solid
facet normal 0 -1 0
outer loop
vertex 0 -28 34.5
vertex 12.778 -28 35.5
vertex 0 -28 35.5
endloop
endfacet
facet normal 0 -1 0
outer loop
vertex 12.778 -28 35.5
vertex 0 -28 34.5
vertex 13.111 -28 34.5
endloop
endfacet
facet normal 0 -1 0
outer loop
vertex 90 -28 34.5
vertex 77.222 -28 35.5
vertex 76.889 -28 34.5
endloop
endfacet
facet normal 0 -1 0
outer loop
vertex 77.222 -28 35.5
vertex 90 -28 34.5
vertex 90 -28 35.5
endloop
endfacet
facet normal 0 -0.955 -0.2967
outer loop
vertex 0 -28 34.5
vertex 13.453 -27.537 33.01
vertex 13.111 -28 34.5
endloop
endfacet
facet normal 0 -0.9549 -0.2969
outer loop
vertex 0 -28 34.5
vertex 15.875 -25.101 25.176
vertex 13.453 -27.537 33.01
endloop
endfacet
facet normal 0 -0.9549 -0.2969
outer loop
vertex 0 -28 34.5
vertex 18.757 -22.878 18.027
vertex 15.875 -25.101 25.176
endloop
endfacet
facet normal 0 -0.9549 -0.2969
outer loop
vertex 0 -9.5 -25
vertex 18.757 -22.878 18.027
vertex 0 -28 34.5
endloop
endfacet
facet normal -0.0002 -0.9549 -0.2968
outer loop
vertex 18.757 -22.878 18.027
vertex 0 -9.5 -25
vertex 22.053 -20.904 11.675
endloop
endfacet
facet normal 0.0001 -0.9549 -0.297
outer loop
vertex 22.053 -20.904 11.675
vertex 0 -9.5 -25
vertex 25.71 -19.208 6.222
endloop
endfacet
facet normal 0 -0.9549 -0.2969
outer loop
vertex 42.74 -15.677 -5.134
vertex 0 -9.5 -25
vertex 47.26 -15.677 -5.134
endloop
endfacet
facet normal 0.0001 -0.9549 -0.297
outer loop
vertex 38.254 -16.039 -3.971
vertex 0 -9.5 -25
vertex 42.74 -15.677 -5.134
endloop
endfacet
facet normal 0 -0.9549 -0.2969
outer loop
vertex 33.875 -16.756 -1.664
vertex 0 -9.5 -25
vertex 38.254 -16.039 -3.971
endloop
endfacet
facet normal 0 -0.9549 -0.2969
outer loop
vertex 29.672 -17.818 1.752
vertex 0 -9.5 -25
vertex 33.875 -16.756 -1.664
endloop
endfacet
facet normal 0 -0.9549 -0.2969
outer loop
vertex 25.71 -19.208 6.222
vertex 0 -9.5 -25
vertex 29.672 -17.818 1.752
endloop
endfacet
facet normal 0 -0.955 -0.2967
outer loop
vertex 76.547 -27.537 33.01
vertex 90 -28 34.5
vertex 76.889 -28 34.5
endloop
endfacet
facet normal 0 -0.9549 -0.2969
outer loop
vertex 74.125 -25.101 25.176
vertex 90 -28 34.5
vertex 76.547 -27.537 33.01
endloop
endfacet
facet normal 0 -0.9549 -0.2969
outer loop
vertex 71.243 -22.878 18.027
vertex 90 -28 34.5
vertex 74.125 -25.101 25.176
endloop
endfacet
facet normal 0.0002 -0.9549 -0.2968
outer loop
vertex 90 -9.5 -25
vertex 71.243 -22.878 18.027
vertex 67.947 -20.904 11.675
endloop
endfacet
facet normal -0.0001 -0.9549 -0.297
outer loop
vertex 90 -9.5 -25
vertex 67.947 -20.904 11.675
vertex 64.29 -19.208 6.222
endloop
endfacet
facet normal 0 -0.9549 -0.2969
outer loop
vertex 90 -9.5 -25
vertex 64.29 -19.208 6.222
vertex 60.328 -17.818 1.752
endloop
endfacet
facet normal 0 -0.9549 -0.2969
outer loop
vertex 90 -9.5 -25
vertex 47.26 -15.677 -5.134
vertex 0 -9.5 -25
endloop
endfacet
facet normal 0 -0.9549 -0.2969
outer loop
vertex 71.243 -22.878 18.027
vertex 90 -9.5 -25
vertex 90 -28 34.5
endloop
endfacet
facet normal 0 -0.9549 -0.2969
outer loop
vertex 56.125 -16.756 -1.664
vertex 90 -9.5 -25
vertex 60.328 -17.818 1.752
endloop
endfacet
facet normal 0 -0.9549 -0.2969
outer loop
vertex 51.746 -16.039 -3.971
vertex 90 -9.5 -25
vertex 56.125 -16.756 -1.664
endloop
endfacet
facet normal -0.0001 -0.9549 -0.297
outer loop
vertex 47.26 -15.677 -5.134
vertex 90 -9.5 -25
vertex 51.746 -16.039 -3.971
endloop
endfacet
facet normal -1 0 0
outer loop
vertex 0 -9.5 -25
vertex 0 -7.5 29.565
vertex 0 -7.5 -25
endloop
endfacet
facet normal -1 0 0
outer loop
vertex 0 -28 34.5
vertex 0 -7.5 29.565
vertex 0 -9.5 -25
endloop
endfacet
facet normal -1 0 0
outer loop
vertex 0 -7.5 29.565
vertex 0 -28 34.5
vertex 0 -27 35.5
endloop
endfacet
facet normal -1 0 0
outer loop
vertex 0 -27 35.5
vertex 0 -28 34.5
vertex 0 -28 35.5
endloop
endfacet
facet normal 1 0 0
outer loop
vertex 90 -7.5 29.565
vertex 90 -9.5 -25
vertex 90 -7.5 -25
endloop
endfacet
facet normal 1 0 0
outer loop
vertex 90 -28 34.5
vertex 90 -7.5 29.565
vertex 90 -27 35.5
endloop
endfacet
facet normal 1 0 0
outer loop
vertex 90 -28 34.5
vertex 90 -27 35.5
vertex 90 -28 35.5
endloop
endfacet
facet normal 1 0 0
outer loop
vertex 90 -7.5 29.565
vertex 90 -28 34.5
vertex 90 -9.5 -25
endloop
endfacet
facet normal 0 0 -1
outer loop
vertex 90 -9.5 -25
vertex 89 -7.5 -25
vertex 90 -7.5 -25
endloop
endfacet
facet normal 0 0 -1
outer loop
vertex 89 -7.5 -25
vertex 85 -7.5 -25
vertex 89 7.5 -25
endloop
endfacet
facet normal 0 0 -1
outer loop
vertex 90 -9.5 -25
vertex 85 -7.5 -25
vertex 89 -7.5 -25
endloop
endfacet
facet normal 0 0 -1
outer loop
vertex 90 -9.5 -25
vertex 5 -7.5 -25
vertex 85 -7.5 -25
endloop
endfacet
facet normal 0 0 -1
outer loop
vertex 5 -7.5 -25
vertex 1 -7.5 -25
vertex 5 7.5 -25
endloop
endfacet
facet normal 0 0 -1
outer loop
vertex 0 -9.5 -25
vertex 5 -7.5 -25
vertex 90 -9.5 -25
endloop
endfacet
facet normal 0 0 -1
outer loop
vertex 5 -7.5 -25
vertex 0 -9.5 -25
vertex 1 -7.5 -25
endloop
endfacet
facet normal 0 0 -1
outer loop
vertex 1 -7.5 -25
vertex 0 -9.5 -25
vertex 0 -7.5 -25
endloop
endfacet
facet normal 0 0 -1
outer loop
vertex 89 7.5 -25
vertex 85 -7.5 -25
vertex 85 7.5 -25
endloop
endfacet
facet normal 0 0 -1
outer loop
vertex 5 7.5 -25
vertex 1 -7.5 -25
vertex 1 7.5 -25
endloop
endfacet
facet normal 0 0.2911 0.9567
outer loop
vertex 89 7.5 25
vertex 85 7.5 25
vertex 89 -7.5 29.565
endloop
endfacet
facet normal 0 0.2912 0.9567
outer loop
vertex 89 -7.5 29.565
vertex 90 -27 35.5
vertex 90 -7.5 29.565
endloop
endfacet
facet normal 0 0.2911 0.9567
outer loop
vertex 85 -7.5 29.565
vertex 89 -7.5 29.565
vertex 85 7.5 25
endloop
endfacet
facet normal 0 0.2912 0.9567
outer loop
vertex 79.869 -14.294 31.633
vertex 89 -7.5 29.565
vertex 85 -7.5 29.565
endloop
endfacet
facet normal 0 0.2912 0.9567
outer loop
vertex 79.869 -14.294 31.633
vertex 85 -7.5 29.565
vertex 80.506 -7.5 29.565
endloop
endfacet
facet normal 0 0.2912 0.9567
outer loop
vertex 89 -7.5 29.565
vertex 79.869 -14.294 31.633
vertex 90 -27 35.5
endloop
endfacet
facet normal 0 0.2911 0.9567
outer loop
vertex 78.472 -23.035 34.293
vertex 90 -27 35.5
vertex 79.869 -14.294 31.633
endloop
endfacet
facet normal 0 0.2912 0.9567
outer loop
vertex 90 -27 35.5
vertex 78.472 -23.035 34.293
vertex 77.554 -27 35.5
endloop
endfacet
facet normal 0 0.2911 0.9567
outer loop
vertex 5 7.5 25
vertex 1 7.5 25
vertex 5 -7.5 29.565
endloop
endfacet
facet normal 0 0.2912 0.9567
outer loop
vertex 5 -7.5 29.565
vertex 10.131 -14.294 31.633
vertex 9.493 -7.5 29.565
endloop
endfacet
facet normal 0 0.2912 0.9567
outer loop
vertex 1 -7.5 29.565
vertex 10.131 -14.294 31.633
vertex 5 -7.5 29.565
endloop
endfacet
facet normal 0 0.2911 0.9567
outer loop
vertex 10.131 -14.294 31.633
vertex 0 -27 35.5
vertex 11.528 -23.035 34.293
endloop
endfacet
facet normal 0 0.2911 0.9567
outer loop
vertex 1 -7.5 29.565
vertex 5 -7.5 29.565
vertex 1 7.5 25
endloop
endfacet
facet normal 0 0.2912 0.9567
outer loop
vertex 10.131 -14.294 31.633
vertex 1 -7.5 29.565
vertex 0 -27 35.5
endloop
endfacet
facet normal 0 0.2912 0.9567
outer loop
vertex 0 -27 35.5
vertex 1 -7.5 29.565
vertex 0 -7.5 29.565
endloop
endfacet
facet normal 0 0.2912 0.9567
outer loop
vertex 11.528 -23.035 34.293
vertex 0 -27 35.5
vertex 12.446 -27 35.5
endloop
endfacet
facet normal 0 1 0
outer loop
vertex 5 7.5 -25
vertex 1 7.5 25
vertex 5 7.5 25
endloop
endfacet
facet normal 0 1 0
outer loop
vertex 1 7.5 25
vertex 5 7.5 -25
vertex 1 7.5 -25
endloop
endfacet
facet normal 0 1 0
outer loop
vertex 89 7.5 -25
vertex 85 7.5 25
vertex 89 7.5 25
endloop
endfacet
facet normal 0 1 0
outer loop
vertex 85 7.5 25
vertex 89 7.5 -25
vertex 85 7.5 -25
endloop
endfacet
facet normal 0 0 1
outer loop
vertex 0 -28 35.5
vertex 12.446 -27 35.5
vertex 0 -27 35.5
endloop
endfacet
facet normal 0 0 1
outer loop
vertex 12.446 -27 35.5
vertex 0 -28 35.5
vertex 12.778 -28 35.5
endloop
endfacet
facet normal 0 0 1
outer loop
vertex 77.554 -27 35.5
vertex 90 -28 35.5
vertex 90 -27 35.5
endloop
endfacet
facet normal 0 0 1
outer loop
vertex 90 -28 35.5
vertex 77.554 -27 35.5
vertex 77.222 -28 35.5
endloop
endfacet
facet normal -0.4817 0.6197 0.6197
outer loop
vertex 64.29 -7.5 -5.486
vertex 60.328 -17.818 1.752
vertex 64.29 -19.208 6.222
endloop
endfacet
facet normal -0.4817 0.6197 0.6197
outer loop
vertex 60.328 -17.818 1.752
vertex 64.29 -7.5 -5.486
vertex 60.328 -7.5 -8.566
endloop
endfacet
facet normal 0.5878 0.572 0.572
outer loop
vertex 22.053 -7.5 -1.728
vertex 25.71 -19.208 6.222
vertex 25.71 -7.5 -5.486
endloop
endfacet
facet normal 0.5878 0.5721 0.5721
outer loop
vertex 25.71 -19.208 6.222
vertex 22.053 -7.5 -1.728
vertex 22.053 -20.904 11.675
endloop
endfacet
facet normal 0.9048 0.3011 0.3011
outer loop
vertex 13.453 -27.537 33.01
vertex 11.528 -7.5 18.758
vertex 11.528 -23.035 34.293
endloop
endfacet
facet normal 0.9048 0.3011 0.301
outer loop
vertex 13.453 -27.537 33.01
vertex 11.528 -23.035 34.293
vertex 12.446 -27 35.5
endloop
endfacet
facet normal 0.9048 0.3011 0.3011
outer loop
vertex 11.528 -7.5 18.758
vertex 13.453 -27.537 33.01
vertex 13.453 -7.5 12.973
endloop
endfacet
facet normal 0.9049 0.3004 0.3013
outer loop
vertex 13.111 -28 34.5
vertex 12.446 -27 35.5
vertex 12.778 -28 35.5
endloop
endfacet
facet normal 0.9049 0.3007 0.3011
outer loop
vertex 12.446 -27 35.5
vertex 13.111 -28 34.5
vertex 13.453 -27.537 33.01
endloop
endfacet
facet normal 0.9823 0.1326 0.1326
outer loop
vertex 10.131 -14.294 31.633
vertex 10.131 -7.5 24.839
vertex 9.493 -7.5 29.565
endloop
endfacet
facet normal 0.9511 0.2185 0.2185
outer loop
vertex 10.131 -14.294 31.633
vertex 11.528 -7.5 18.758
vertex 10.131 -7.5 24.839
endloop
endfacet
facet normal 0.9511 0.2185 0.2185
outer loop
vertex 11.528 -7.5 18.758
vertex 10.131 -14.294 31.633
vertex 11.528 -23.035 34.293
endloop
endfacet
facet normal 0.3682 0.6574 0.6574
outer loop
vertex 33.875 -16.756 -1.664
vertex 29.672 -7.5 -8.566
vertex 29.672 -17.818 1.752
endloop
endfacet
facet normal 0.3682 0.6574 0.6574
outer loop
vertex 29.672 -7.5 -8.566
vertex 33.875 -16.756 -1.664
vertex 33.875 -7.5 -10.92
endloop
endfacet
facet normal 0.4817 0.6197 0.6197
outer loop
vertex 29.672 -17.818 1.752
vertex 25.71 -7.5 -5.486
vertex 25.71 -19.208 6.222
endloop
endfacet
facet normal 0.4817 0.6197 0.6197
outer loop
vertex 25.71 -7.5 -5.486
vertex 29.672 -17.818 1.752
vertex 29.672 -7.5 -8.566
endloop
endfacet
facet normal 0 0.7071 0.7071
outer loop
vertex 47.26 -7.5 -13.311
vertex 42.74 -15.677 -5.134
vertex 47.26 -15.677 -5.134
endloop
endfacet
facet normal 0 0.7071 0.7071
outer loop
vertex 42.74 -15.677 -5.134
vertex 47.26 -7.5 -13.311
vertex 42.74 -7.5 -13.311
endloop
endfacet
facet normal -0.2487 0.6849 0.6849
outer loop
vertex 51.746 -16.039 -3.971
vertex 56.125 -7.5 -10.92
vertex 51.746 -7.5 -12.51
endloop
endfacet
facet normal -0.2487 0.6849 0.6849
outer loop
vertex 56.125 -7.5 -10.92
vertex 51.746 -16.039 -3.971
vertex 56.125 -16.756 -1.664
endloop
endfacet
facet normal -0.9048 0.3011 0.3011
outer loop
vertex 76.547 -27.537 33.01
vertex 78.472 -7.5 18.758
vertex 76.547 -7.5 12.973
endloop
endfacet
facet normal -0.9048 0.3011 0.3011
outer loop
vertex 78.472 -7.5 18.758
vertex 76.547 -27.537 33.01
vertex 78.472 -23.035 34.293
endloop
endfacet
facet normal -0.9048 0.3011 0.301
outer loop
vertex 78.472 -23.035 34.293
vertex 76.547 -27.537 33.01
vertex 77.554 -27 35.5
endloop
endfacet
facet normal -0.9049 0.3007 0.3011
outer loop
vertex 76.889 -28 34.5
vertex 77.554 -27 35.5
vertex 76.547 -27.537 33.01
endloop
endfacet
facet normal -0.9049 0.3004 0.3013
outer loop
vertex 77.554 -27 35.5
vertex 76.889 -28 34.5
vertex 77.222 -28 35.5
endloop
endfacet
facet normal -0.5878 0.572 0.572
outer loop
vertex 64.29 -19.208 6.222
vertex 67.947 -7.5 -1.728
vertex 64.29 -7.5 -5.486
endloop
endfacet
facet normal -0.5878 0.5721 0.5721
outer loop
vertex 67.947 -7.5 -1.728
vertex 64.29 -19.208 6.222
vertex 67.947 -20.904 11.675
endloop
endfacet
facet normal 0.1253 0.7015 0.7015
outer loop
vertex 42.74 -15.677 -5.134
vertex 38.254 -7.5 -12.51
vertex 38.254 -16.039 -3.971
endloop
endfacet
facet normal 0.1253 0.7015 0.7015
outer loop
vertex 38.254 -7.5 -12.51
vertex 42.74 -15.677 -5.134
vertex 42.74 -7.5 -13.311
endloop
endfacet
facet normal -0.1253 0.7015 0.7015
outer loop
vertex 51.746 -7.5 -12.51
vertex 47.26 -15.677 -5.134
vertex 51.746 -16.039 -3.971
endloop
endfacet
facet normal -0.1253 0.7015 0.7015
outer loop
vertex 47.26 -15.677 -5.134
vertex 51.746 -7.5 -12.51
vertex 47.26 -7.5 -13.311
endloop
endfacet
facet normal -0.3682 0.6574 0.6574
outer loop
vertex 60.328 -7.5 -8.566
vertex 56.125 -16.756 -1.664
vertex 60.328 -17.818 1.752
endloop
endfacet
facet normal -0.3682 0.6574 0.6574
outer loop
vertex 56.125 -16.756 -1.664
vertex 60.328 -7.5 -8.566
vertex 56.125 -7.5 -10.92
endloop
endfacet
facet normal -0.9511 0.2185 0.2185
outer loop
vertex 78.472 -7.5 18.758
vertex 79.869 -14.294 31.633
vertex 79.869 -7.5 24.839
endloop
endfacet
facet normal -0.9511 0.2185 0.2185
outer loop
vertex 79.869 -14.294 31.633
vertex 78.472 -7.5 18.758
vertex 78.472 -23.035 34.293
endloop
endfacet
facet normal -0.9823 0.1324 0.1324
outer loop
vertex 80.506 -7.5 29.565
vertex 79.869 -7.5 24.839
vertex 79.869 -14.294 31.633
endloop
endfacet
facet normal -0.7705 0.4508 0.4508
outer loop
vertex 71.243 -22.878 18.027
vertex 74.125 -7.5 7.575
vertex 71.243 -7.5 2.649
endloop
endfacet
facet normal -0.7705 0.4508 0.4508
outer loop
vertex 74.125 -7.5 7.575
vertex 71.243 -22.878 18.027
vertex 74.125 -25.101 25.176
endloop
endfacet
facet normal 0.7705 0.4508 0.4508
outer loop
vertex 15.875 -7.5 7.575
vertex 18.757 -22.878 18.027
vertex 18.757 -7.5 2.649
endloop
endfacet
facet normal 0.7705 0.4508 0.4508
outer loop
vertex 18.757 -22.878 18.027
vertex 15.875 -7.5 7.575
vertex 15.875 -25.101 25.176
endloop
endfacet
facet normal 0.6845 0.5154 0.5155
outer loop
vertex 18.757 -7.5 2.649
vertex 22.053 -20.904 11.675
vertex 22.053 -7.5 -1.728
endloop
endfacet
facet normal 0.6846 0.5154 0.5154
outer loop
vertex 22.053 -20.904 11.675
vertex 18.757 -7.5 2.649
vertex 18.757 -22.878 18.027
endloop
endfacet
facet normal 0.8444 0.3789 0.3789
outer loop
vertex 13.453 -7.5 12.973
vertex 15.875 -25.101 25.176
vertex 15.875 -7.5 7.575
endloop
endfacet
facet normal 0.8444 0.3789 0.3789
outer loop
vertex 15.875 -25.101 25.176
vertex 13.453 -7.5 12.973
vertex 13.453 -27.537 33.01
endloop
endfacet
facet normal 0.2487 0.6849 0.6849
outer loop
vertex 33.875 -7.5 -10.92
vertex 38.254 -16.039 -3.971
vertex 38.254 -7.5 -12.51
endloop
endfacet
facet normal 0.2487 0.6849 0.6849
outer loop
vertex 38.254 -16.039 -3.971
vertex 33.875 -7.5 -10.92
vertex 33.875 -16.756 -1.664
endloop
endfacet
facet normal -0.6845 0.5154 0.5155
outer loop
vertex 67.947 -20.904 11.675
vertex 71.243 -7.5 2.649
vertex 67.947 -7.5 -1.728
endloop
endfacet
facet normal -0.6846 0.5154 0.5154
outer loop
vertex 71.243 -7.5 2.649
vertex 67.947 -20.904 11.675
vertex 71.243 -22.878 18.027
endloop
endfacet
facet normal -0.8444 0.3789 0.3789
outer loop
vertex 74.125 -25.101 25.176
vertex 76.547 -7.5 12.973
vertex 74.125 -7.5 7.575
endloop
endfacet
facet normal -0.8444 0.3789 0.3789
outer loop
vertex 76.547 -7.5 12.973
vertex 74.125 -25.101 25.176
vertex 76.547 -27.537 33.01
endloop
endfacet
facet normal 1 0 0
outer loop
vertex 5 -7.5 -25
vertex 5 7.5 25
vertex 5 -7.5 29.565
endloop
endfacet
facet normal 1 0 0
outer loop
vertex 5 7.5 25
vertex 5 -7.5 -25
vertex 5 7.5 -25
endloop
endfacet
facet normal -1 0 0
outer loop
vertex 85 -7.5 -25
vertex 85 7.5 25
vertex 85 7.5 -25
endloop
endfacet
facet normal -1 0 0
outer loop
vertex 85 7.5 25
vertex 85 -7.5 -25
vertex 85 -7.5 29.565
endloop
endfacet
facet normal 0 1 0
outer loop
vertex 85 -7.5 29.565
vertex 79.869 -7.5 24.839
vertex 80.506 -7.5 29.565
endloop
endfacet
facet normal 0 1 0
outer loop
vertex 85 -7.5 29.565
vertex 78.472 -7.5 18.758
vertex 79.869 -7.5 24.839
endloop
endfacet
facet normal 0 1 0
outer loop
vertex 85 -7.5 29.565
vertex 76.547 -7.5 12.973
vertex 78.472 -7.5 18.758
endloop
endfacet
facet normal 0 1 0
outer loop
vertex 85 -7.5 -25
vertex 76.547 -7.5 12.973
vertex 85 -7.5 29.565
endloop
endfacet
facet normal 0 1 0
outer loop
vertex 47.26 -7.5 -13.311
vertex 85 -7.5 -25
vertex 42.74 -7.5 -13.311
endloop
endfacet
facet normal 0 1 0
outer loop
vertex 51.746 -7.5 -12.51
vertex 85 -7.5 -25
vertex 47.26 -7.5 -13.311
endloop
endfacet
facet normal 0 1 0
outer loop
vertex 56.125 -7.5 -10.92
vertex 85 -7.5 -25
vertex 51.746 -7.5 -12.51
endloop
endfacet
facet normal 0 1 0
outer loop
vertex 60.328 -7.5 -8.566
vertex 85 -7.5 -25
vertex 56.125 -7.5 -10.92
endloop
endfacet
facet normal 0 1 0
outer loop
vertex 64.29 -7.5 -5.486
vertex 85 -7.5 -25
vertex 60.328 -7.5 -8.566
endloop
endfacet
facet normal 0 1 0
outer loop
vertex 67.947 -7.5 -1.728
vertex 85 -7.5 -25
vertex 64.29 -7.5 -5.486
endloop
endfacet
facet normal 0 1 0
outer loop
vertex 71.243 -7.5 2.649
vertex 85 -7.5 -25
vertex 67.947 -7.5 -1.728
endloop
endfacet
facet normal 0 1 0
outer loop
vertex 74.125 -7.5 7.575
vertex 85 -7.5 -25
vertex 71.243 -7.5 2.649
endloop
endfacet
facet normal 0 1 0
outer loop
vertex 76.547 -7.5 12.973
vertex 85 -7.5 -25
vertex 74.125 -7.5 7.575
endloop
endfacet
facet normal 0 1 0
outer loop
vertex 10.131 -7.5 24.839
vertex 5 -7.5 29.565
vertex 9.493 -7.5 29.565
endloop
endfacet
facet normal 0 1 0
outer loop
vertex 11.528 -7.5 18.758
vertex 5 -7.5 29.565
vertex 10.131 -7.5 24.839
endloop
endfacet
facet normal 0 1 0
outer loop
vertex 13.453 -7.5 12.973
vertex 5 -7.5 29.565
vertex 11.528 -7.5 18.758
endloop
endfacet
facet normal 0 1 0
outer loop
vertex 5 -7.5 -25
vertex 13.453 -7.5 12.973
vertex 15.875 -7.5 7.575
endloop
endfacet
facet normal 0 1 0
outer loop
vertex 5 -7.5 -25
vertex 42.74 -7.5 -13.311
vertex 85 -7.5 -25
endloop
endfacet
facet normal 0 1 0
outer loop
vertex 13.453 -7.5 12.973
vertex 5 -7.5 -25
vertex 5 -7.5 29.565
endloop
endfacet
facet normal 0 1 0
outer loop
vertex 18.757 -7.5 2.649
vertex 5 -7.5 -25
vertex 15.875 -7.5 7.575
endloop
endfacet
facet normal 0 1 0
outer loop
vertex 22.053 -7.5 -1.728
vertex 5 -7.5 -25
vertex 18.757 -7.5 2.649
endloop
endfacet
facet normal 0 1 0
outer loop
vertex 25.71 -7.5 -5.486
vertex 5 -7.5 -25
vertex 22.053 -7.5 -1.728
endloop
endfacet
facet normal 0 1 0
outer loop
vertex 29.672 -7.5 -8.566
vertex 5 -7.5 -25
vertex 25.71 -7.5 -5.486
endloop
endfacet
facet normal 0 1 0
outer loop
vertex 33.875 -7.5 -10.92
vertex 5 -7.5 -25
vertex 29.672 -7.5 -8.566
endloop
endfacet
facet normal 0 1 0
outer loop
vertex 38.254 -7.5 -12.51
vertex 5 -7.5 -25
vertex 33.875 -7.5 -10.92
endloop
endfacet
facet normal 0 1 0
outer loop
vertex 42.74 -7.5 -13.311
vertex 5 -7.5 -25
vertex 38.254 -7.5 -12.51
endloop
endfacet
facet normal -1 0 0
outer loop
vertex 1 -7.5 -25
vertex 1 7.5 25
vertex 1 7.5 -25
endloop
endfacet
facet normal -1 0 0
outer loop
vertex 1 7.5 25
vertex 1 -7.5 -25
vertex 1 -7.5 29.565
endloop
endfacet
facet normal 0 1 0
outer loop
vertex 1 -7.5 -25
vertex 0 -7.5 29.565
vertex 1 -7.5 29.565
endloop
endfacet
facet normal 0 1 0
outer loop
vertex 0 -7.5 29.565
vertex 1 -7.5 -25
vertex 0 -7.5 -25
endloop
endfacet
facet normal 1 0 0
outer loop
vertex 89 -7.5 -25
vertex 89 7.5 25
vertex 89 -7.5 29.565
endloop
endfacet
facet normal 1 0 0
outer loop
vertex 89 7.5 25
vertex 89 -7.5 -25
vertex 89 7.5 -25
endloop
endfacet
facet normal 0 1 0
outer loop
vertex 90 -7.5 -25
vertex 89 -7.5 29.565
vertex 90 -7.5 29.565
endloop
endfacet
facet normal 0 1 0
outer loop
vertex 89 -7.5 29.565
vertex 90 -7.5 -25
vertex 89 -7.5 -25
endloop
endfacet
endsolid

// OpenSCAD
$fn=50;
/*
  Between Wall Hairdryer Holster
  Author: Brian Khuu 2019
  
  Good for some bathroom to use the dead space between walls.
  E.g. Mirrors with walls that are next to another wall.

*/

// Width of the space between the walls you have.
side_wall_lim=90;

// length of mounting strip base
sx = 15;

// widith of mounting strip base
sy = 50;

// height of mounting strip base
sh = 2;

/* This was for a different concept
module hairdryer_ring_old()
{
  ring_rotate=45;
  openingdeg=50;
  dia=50;
  thickness = 2;
  rotate([ring_rotate,0,0])
  translate([dia+thickness+1,0,0])
  rotate([0,0,openingdeg/2])
  rotate_extrude(angle = 360-openingdeg, convexity = 3)
  translate([dia, 0, 0])
  minkowski()
  {
    square([thickness,thickness]);
    circle(r=1);
  }
}
*/

module hairdryer_ring()
{
  ring_rotate=45;

  translate([0,0,30])
  rotate([ring_rotate,0,0])
  translate([side_wall_lim/2,0,0])
    cylinder(r=side_wall_lim*0.8/2, h=100, center=true);
}

difference()
{
  hull()
  {
    translate([1/2,0,0])
      cube([1,sx,sy], center=true);
    translate([side_wall_lim-1/2,0,0])
      cube([1,sx,sy], center=true);
    translate([side_wall_lim/2,-sx/2-2,-sy/2])  
      cube([side_wall_lim,0.001,0.001], center=true);
    translate([side_wall_lim/2,-sx/2-20,sy/2+10])  
      cube([side_wall_lim,1,1], center=true);
  }
  
  #hairdryer_ring();
  translate([side_wall_lim/2,0,0])
    cube([side_wall_lim-10,sx,sy*2], center=true);
  
  // For adhesive Strip
  translate([1/2,0,0])
    cube([1,sx,sy*2], center=true);
  translate([side_wall_lim-1/2,0,0])
    cube([1,sx,sy*2], center=true);
  
  // Cleanup Edge
  translate([0,0,0])
    cube([1,sx,sy*2], center=true);
  translate([side_wall_lim,0,0])
    cube([1,sx,sy*2], center=true);
}

// Bathroom Walls Visualisation
%translate([-1/2,0,0])
  cube([1,100,100], center=true);
%translate([side_wall_lim+1/2,0,0])
  cube([1,100,100], center=true);
